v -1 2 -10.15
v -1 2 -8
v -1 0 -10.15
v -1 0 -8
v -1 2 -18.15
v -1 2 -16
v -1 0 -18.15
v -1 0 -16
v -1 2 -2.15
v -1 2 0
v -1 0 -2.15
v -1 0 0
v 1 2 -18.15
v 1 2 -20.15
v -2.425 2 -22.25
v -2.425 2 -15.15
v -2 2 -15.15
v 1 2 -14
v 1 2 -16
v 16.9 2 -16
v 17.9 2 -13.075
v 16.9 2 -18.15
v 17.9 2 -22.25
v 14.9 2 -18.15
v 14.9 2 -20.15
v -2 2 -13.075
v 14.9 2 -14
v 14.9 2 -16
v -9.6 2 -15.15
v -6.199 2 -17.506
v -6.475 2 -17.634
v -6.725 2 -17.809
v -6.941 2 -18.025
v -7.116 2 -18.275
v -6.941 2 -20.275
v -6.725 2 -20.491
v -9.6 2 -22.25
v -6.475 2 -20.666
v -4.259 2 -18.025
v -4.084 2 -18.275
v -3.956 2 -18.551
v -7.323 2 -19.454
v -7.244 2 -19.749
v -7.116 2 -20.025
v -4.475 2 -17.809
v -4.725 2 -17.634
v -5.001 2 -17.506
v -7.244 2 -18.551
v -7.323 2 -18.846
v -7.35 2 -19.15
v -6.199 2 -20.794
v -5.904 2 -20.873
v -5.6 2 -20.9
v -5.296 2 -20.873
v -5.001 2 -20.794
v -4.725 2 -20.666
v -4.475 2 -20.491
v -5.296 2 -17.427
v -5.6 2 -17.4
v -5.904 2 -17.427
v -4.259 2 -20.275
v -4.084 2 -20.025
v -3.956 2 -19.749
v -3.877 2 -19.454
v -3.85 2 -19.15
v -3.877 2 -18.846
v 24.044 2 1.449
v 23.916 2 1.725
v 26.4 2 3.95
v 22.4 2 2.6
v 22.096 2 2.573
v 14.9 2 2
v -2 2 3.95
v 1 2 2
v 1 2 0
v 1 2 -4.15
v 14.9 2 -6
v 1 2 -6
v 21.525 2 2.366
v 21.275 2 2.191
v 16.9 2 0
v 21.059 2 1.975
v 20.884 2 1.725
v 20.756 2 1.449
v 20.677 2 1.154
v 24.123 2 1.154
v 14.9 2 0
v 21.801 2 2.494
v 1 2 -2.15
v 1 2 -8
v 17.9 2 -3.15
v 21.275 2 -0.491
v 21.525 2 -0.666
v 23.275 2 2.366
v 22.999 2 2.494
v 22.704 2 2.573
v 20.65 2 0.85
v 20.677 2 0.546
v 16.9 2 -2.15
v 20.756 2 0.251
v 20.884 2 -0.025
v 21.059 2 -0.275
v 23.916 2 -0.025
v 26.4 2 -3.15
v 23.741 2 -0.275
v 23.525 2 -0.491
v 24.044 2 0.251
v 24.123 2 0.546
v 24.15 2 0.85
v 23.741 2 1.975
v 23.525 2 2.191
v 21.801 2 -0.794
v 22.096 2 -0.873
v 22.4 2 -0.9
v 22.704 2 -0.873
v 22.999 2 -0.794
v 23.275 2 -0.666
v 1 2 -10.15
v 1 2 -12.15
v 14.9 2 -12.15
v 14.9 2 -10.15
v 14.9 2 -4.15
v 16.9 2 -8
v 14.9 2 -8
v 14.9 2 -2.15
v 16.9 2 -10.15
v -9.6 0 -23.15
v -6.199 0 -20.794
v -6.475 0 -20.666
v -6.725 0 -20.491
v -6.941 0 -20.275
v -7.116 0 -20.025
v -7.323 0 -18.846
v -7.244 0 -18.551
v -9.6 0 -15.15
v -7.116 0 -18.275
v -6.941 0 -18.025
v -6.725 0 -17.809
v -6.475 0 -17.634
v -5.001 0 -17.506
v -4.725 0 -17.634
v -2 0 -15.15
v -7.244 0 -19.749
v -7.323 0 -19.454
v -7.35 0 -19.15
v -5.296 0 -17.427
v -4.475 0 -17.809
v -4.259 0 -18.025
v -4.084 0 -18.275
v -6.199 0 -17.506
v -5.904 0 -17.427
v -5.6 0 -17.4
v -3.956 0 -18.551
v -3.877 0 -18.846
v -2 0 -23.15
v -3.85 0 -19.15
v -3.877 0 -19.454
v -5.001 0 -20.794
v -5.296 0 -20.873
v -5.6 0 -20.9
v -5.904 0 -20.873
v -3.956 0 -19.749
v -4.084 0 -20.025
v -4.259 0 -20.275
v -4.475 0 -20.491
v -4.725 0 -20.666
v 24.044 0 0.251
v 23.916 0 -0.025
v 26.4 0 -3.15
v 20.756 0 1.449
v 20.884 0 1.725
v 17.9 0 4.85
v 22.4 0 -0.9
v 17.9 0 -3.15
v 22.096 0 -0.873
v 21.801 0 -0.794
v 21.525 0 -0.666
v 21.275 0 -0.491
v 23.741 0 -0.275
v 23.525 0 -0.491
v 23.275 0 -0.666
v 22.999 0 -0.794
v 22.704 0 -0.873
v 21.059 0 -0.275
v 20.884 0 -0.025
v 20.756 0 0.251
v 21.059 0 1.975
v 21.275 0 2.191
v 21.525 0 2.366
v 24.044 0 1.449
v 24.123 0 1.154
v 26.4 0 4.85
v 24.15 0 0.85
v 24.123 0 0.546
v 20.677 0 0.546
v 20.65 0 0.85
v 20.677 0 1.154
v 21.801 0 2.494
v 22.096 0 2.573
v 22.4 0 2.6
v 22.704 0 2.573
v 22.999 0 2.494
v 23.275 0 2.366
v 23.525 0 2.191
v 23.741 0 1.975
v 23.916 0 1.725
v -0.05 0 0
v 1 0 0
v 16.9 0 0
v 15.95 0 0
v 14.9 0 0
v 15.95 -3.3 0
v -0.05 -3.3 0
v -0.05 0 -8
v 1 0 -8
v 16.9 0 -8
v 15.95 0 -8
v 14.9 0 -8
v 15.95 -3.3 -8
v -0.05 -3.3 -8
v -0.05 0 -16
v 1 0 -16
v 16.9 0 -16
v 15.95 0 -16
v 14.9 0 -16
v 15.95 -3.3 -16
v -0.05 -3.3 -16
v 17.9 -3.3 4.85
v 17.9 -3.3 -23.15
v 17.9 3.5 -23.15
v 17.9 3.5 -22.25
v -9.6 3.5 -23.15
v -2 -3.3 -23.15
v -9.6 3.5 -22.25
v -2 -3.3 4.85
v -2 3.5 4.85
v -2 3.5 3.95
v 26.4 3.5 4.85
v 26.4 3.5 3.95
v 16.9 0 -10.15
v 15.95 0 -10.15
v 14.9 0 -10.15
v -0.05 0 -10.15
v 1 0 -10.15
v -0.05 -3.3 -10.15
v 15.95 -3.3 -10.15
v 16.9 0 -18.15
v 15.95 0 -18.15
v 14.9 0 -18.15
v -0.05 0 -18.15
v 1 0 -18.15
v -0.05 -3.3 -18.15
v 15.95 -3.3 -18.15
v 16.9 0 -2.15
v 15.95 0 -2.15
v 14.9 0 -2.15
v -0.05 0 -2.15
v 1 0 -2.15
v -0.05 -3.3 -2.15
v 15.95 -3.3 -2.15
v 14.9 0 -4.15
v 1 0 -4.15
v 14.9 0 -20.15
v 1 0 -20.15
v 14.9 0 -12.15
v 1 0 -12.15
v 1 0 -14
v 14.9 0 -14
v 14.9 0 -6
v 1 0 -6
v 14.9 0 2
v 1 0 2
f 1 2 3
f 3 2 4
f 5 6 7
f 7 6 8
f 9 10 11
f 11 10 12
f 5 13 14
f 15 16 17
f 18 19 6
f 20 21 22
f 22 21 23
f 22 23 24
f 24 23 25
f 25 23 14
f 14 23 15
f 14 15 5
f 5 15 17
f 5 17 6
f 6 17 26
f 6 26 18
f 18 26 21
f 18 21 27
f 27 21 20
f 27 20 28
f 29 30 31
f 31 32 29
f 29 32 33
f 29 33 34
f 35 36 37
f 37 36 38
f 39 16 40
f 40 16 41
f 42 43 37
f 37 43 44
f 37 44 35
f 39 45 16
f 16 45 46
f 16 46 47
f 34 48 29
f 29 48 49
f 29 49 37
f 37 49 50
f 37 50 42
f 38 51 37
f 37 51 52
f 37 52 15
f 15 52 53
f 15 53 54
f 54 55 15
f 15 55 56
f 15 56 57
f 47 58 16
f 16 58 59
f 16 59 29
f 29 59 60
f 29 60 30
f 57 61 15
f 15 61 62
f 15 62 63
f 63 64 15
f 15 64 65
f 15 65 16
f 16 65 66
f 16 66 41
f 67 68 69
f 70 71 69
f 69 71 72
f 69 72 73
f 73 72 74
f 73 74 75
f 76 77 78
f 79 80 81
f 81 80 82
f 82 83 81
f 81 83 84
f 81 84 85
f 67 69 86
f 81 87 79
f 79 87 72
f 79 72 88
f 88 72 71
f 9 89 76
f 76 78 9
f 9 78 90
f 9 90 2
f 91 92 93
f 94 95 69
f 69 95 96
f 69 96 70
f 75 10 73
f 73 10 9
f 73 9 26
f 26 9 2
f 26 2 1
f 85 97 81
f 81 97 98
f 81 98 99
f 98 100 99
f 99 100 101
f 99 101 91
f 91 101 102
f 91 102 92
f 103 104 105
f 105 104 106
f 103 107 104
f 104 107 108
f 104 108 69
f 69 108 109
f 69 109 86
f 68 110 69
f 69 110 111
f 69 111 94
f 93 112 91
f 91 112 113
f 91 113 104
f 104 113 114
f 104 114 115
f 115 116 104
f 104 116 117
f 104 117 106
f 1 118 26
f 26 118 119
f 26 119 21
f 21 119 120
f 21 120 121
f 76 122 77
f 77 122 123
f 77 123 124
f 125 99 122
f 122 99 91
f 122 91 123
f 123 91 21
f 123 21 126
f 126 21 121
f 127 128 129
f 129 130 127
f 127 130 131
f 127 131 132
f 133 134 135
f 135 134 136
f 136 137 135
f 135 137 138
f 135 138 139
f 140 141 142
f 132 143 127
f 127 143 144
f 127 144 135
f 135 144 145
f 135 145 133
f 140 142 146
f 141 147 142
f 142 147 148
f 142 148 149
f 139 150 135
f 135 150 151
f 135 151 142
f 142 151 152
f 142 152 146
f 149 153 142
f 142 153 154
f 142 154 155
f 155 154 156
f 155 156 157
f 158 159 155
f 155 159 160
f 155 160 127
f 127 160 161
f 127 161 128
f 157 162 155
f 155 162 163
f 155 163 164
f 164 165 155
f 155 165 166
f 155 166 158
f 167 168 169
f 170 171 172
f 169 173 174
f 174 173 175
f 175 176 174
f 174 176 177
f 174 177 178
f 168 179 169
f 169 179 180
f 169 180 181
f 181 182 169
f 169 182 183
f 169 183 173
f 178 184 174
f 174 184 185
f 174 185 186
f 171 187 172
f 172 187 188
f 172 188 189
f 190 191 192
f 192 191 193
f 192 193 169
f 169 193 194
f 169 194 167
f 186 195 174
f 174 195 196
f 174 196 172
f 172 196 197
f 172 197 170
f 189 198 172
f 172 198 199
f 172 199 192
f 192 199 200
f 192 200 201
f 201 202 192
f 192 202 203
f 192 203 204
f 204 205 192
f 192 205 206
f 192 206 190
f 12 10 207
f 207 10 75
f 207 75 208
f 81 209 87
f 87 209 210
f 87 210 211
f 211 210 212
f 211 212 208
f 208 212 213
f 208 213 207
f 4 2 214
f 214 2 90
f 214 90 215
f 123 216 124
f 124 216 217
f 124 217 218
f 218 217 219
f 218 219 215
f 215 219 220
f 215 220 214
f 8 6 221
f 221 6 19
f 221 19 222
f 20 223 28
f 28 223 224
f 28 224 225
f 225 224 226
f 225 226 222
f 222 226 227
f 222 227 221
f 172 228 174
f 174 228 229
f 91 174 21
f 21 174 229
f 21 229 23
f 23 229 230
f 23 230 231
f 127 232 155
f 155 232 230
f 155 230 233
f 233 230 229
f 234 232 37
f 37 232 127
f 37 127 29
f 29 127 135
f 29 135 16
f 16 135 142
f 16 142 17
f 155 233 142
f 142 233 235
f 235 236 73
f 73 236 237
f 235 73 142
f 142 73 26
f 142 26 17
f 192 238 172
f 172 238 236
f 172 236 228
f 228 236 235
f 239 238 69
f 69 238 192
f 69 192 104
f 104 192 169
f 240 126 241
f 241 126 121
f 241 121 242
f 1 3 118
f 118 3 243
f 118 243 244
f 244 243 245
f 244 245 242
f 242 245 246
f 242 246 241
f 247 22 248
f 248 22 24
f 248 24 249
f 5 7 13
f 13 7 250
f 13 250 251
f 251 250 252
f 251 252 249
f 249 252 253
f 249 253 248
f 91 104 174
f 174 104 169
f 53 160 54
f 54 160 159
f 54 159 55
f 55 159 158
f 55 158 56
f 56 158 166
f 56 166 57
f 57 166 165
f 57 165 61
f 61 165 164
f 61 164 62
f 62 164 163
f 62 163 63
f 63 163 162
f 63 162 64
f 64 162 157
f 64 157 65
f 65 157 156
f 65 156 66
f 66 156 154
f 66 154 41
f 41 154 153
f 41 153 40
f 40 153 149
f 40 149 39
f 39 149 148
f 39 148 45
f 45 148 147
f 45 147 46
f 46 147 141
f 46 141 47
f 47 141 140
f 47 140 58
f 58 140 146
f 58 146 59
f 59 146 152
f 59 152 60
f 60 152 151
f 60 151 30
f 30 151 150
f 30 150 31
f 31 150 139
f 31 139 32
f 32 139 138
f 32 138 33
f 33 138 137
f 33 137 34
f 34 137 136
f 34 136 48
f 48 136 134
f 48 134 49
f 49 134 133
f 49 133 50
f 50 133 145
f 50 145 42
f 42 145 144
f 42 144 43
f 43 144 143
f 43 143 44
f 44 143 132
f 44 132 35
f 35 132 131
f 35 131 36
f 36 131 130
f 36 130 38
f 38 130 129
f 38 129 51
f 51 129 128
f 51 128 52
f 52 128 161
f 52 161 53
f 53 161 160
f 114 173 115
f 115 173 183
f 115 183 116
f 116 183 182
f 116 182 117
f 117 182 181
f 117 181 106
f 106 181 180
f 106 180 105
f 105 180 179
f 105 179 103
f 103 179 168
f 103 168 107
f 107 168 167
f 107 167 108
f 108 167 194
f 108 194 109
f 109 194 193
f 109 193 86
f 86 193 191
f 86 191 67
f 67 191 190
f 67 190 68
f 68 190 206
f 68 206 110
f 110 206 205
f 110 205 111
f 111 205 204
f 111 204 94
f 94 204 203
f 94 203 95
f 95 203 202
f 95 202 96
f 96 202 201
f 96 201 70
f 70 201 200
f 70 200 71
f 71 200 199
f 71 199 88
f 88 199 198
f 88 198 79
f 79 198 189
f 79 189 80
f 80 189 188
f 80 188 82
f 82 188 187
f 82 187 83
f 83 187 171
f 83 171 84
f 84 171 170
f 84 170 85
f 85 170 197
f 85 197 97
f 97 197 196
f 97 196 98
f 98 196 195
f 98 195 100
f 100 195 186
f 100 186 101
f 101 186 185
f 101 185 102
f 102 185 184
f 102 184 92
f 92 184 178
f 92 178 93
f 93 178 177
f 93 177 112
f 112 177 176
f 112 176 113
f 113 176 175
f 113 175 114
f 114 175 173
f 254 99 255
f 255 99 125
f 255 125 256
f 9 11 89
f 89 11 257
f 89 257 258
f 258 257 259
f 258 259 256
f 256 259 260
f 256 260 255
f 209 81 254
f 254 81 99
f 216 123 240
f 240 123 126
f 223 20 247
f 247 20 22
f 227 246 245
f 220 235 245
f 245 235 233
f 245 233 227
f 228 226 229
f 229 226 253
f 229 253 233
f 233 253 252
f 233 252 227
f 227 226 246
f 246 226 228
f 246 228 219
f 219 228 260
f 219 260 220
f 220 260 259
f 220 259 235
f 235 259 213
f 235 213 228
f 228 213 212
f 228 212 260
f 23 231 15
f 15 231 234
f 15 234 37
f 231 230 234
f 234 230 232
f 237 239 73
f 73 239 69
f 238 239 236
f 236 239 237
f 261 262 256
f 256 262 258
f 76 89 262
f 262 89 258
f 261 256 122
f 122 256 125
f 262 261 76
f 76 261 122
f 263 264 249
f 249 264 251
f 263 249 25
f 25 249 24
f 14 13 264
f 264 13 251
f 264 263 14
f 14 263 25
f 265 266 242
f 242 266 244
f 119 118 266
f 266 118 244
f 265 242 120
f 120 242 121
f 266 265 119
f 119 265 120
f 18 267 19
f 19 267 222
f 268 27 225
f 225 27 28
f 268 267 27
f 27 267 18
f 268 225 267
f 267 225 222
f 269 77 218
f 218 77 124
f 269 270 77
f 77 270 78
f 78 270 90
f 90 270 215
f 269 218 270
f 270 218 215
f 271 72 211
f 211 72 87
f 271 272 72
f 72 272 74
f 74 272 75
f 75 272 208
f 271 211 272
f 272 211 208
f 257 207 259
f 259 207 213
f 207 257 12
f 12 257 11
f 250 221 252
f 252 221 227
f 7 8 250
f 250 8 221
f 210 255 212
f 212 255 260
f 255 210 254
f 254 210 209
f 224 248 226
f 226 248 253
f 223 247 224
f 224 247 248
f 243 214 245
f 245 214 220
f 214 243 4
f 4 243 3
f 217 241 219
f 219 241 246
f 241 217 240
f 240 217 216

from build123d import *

# Parameters (mm, degrees)
SKETCH1_W                       = 15.9
SKETCH1_H                       = 2.15
SKETCH1_R                       = 1.75
MAIN_BODY_DEPTH                 = 2
SKETCH3_W                       = 17.9
SKETCH3_H                       = 2.15
LIGHT_PIPE_SLOT_CUT_DEPTH       = 2
SKETCH4_W                       = 19.9
SKETCH4_H                       = 28
SKETCH4_W_2                     = 17.9
SKETCH4_H_2                     = 2.15
MAIN_BODY_EXTENSION_DEPTH       = 3.3
SKETCH6_W                       = 27.5
SKETCH6_H                       = 0.9
PCB_EDGE_LIP_ONE_SIDE_DEPTH     = 1.5
SKETCH6_3_W                     = 27.5
SKETCH6_3_H                     = 0.9
SKETCH6_3_W_2                   = 28.4
PCB_EDGE_LIP_ANOTHER_SIDE_DEPTH = 1.5
SKETCH8_W                       = 13.9
SKETCH8_H                       = 6.15
SMD_UNDERSIDE_RECESS_DEPTH      = 2
SKETCH9_W                       = 0.95
SKETCH9_H                       = 2.15
LIGHT_PIPE_STOP_DEPTH           = 3.3


with BuildPart() as part:
    # Sketch1 → Main body (new body)
    with BuildSketch(Plane(origin=(0, 0, 0), x_dir=(1, 0, 0), z_dir=(0, 1, 0))):
        Polygon((-9.6, 15.15), (-2, 15.15), (-2, -4.85), (26.4, -4.85), (26.4, 3.15), (17.9, 3.15), (17.9, 23.15), (-9.6, 23.15), align=None)
        with Locations((7.95, 1.075)):
            Rectangle(SKETCH1_W, SKETCH1_H, mode=Mode.SUBTRACT)
        with Locations((7.95, 9.075)):
            Rectangle(SKETCH1_W, SKETCH1_H, mode=Mode.SUBTRACT)
        with Locations((22.4, -0.85)):
            Circle(SKETCH1_R, mode=Mode.SUBTRACT)
        with Locations((-5.6, 19.15)):
            Circle(SKETCH1_R, mode=Mode.SUBTRACT)
        with Locations((7.95, 17.075)):
            Rectangle(SKETCH1_W, SKETCH1_H, mode=Mode.SUBTRACT)
    extrude(amount=MAIN_BODY_DEPTH)

    # Sketch3 → Light pipe slot cut (cut)
    with BuildSketch(Plane(origin=(0, 2, 0), x_dir=(1, 0, 0), z_dir=(0, 1, 0))):
        with Locations((7.95, 17.075)):
            Rectangle(SKETCH3_W, SKETCH3_H)
        with Locations((7.95, 9.075)):
            Rectangle(SKETCH3_W, SKETCH3_H)
        with Locations((7.95, 1.075)):
            Rectangle(SKETCH3_W, SKETCH3_H)
    extrude(amount=-LIGHT_PIPE_SLOT_CUT_DEPTH, mode=Mode.SUBTRACT)

    # Sketch4 → Main body extension (add)
    with BuildSketch(Plane.XZ):
        with Locations((7.95, -9.15)):
            Rectangle(SKETCH4_W, SKETCH4_H)
        with Locations((7.95, -17.075)):
            Rectangle(SKETCH4_W_2, SKETCH4_H_2, mode=Mode.SUBTRACT)
        with Locations((7.95, -9.075)):
            Rectangle(SKETCH4_W_2, SKETCH4_H_2, mode=Mode.SUBTRACT)
        with Locations((7.95, -1.075)):
            Rectangle(SKETCH4_W_2, SKETCH4_H_2, mode=Mode.SUBTRACT)
    extrude(amount=MAIN_BODY_EXTENSION_DEPTH)

    # Sketch6 → PCB edge lip one side (add)
    with BuildSketch(Plane(origin=(0, 2, 0), x_dir=(1, 0, 0), z_dir=(0, 1, 0))):
        with Locations((4.15, 22.7)):
            Rectangle(SKETCH6_W, SKETCH6_H)
    extrude(amount=PCB_EDGE_LIP_ONE_SIDE_DEPTH)

    # Sketch6<3> → PCB edge lip another side (add)
    with BuildSketch(Plane(origin=(0, 2, 0), x_dir=(1, 0, 0), z_dir=(0, 1, 0))):
        with Locations((4.15, 22.7)):
            Rectangle(SKETCH6_3_W, SKETCH6_3_H)
        with Locations((12.2, -4.4)):
            Rectangle(SKETCH6_3_W_2, SKETCH6_3_H)
    extrude(amount=PCB_EDGE_LIP_ANOTHER_SIDE_DEPTH)

    # Sketch8 → SMD underside recess (cut)
    with BuildSketch(Plane(origin=(0, 2, 0), x_dir=(1, 0, 0), z_dir=(0, 1, 0))):
        with Locations((7.95, 17.075)):
            Rectangle(SKETCH8_W, SKETCH8_H)
        with Locations((7.95, 1.075)):
            Rectangle(SKETCH8_W, SKETCH8_H)
        with Locations((7.95, 9.075)):
            Rectangle(SKETCH8_W, SKETCH8_H)
    extrude(amount=-SMD_UNDERSIDE_RECESS_DEPTH, mode=Mode.SUBTRACT)

    # Sketch9 → Light pipe stop (add)
    with BuildSketch(Plane.XZ.offset(3.3)):
        with Locations((-0.525, -1.075)):
            Rectangle(SKETCH9_W, SKETCH9_H)
        with Locations((-0.525, -17.075)):
            Rectangle(SKETCH9_W, SKETCH9_H)
        with Locations((16.425, -1.075)):
            Rectangle(SKETCH9_W, SKETCH9_H)
        with Locations((16.425, -17.075)):
            Rectangle(SKETCH9_W, SKETCH9_H)
        with Locations((-0.525, -9.075)):
            Rectangle(SKETCH9_W, SKETCH9_H)
        with Locations((16.425, -9.075)):
            Rectangle(SKETCH9_W, SKETCH9_H)
    extrude(amount=-LIGHT_PIPE_STOP_DEPTH)


solid = part.part
